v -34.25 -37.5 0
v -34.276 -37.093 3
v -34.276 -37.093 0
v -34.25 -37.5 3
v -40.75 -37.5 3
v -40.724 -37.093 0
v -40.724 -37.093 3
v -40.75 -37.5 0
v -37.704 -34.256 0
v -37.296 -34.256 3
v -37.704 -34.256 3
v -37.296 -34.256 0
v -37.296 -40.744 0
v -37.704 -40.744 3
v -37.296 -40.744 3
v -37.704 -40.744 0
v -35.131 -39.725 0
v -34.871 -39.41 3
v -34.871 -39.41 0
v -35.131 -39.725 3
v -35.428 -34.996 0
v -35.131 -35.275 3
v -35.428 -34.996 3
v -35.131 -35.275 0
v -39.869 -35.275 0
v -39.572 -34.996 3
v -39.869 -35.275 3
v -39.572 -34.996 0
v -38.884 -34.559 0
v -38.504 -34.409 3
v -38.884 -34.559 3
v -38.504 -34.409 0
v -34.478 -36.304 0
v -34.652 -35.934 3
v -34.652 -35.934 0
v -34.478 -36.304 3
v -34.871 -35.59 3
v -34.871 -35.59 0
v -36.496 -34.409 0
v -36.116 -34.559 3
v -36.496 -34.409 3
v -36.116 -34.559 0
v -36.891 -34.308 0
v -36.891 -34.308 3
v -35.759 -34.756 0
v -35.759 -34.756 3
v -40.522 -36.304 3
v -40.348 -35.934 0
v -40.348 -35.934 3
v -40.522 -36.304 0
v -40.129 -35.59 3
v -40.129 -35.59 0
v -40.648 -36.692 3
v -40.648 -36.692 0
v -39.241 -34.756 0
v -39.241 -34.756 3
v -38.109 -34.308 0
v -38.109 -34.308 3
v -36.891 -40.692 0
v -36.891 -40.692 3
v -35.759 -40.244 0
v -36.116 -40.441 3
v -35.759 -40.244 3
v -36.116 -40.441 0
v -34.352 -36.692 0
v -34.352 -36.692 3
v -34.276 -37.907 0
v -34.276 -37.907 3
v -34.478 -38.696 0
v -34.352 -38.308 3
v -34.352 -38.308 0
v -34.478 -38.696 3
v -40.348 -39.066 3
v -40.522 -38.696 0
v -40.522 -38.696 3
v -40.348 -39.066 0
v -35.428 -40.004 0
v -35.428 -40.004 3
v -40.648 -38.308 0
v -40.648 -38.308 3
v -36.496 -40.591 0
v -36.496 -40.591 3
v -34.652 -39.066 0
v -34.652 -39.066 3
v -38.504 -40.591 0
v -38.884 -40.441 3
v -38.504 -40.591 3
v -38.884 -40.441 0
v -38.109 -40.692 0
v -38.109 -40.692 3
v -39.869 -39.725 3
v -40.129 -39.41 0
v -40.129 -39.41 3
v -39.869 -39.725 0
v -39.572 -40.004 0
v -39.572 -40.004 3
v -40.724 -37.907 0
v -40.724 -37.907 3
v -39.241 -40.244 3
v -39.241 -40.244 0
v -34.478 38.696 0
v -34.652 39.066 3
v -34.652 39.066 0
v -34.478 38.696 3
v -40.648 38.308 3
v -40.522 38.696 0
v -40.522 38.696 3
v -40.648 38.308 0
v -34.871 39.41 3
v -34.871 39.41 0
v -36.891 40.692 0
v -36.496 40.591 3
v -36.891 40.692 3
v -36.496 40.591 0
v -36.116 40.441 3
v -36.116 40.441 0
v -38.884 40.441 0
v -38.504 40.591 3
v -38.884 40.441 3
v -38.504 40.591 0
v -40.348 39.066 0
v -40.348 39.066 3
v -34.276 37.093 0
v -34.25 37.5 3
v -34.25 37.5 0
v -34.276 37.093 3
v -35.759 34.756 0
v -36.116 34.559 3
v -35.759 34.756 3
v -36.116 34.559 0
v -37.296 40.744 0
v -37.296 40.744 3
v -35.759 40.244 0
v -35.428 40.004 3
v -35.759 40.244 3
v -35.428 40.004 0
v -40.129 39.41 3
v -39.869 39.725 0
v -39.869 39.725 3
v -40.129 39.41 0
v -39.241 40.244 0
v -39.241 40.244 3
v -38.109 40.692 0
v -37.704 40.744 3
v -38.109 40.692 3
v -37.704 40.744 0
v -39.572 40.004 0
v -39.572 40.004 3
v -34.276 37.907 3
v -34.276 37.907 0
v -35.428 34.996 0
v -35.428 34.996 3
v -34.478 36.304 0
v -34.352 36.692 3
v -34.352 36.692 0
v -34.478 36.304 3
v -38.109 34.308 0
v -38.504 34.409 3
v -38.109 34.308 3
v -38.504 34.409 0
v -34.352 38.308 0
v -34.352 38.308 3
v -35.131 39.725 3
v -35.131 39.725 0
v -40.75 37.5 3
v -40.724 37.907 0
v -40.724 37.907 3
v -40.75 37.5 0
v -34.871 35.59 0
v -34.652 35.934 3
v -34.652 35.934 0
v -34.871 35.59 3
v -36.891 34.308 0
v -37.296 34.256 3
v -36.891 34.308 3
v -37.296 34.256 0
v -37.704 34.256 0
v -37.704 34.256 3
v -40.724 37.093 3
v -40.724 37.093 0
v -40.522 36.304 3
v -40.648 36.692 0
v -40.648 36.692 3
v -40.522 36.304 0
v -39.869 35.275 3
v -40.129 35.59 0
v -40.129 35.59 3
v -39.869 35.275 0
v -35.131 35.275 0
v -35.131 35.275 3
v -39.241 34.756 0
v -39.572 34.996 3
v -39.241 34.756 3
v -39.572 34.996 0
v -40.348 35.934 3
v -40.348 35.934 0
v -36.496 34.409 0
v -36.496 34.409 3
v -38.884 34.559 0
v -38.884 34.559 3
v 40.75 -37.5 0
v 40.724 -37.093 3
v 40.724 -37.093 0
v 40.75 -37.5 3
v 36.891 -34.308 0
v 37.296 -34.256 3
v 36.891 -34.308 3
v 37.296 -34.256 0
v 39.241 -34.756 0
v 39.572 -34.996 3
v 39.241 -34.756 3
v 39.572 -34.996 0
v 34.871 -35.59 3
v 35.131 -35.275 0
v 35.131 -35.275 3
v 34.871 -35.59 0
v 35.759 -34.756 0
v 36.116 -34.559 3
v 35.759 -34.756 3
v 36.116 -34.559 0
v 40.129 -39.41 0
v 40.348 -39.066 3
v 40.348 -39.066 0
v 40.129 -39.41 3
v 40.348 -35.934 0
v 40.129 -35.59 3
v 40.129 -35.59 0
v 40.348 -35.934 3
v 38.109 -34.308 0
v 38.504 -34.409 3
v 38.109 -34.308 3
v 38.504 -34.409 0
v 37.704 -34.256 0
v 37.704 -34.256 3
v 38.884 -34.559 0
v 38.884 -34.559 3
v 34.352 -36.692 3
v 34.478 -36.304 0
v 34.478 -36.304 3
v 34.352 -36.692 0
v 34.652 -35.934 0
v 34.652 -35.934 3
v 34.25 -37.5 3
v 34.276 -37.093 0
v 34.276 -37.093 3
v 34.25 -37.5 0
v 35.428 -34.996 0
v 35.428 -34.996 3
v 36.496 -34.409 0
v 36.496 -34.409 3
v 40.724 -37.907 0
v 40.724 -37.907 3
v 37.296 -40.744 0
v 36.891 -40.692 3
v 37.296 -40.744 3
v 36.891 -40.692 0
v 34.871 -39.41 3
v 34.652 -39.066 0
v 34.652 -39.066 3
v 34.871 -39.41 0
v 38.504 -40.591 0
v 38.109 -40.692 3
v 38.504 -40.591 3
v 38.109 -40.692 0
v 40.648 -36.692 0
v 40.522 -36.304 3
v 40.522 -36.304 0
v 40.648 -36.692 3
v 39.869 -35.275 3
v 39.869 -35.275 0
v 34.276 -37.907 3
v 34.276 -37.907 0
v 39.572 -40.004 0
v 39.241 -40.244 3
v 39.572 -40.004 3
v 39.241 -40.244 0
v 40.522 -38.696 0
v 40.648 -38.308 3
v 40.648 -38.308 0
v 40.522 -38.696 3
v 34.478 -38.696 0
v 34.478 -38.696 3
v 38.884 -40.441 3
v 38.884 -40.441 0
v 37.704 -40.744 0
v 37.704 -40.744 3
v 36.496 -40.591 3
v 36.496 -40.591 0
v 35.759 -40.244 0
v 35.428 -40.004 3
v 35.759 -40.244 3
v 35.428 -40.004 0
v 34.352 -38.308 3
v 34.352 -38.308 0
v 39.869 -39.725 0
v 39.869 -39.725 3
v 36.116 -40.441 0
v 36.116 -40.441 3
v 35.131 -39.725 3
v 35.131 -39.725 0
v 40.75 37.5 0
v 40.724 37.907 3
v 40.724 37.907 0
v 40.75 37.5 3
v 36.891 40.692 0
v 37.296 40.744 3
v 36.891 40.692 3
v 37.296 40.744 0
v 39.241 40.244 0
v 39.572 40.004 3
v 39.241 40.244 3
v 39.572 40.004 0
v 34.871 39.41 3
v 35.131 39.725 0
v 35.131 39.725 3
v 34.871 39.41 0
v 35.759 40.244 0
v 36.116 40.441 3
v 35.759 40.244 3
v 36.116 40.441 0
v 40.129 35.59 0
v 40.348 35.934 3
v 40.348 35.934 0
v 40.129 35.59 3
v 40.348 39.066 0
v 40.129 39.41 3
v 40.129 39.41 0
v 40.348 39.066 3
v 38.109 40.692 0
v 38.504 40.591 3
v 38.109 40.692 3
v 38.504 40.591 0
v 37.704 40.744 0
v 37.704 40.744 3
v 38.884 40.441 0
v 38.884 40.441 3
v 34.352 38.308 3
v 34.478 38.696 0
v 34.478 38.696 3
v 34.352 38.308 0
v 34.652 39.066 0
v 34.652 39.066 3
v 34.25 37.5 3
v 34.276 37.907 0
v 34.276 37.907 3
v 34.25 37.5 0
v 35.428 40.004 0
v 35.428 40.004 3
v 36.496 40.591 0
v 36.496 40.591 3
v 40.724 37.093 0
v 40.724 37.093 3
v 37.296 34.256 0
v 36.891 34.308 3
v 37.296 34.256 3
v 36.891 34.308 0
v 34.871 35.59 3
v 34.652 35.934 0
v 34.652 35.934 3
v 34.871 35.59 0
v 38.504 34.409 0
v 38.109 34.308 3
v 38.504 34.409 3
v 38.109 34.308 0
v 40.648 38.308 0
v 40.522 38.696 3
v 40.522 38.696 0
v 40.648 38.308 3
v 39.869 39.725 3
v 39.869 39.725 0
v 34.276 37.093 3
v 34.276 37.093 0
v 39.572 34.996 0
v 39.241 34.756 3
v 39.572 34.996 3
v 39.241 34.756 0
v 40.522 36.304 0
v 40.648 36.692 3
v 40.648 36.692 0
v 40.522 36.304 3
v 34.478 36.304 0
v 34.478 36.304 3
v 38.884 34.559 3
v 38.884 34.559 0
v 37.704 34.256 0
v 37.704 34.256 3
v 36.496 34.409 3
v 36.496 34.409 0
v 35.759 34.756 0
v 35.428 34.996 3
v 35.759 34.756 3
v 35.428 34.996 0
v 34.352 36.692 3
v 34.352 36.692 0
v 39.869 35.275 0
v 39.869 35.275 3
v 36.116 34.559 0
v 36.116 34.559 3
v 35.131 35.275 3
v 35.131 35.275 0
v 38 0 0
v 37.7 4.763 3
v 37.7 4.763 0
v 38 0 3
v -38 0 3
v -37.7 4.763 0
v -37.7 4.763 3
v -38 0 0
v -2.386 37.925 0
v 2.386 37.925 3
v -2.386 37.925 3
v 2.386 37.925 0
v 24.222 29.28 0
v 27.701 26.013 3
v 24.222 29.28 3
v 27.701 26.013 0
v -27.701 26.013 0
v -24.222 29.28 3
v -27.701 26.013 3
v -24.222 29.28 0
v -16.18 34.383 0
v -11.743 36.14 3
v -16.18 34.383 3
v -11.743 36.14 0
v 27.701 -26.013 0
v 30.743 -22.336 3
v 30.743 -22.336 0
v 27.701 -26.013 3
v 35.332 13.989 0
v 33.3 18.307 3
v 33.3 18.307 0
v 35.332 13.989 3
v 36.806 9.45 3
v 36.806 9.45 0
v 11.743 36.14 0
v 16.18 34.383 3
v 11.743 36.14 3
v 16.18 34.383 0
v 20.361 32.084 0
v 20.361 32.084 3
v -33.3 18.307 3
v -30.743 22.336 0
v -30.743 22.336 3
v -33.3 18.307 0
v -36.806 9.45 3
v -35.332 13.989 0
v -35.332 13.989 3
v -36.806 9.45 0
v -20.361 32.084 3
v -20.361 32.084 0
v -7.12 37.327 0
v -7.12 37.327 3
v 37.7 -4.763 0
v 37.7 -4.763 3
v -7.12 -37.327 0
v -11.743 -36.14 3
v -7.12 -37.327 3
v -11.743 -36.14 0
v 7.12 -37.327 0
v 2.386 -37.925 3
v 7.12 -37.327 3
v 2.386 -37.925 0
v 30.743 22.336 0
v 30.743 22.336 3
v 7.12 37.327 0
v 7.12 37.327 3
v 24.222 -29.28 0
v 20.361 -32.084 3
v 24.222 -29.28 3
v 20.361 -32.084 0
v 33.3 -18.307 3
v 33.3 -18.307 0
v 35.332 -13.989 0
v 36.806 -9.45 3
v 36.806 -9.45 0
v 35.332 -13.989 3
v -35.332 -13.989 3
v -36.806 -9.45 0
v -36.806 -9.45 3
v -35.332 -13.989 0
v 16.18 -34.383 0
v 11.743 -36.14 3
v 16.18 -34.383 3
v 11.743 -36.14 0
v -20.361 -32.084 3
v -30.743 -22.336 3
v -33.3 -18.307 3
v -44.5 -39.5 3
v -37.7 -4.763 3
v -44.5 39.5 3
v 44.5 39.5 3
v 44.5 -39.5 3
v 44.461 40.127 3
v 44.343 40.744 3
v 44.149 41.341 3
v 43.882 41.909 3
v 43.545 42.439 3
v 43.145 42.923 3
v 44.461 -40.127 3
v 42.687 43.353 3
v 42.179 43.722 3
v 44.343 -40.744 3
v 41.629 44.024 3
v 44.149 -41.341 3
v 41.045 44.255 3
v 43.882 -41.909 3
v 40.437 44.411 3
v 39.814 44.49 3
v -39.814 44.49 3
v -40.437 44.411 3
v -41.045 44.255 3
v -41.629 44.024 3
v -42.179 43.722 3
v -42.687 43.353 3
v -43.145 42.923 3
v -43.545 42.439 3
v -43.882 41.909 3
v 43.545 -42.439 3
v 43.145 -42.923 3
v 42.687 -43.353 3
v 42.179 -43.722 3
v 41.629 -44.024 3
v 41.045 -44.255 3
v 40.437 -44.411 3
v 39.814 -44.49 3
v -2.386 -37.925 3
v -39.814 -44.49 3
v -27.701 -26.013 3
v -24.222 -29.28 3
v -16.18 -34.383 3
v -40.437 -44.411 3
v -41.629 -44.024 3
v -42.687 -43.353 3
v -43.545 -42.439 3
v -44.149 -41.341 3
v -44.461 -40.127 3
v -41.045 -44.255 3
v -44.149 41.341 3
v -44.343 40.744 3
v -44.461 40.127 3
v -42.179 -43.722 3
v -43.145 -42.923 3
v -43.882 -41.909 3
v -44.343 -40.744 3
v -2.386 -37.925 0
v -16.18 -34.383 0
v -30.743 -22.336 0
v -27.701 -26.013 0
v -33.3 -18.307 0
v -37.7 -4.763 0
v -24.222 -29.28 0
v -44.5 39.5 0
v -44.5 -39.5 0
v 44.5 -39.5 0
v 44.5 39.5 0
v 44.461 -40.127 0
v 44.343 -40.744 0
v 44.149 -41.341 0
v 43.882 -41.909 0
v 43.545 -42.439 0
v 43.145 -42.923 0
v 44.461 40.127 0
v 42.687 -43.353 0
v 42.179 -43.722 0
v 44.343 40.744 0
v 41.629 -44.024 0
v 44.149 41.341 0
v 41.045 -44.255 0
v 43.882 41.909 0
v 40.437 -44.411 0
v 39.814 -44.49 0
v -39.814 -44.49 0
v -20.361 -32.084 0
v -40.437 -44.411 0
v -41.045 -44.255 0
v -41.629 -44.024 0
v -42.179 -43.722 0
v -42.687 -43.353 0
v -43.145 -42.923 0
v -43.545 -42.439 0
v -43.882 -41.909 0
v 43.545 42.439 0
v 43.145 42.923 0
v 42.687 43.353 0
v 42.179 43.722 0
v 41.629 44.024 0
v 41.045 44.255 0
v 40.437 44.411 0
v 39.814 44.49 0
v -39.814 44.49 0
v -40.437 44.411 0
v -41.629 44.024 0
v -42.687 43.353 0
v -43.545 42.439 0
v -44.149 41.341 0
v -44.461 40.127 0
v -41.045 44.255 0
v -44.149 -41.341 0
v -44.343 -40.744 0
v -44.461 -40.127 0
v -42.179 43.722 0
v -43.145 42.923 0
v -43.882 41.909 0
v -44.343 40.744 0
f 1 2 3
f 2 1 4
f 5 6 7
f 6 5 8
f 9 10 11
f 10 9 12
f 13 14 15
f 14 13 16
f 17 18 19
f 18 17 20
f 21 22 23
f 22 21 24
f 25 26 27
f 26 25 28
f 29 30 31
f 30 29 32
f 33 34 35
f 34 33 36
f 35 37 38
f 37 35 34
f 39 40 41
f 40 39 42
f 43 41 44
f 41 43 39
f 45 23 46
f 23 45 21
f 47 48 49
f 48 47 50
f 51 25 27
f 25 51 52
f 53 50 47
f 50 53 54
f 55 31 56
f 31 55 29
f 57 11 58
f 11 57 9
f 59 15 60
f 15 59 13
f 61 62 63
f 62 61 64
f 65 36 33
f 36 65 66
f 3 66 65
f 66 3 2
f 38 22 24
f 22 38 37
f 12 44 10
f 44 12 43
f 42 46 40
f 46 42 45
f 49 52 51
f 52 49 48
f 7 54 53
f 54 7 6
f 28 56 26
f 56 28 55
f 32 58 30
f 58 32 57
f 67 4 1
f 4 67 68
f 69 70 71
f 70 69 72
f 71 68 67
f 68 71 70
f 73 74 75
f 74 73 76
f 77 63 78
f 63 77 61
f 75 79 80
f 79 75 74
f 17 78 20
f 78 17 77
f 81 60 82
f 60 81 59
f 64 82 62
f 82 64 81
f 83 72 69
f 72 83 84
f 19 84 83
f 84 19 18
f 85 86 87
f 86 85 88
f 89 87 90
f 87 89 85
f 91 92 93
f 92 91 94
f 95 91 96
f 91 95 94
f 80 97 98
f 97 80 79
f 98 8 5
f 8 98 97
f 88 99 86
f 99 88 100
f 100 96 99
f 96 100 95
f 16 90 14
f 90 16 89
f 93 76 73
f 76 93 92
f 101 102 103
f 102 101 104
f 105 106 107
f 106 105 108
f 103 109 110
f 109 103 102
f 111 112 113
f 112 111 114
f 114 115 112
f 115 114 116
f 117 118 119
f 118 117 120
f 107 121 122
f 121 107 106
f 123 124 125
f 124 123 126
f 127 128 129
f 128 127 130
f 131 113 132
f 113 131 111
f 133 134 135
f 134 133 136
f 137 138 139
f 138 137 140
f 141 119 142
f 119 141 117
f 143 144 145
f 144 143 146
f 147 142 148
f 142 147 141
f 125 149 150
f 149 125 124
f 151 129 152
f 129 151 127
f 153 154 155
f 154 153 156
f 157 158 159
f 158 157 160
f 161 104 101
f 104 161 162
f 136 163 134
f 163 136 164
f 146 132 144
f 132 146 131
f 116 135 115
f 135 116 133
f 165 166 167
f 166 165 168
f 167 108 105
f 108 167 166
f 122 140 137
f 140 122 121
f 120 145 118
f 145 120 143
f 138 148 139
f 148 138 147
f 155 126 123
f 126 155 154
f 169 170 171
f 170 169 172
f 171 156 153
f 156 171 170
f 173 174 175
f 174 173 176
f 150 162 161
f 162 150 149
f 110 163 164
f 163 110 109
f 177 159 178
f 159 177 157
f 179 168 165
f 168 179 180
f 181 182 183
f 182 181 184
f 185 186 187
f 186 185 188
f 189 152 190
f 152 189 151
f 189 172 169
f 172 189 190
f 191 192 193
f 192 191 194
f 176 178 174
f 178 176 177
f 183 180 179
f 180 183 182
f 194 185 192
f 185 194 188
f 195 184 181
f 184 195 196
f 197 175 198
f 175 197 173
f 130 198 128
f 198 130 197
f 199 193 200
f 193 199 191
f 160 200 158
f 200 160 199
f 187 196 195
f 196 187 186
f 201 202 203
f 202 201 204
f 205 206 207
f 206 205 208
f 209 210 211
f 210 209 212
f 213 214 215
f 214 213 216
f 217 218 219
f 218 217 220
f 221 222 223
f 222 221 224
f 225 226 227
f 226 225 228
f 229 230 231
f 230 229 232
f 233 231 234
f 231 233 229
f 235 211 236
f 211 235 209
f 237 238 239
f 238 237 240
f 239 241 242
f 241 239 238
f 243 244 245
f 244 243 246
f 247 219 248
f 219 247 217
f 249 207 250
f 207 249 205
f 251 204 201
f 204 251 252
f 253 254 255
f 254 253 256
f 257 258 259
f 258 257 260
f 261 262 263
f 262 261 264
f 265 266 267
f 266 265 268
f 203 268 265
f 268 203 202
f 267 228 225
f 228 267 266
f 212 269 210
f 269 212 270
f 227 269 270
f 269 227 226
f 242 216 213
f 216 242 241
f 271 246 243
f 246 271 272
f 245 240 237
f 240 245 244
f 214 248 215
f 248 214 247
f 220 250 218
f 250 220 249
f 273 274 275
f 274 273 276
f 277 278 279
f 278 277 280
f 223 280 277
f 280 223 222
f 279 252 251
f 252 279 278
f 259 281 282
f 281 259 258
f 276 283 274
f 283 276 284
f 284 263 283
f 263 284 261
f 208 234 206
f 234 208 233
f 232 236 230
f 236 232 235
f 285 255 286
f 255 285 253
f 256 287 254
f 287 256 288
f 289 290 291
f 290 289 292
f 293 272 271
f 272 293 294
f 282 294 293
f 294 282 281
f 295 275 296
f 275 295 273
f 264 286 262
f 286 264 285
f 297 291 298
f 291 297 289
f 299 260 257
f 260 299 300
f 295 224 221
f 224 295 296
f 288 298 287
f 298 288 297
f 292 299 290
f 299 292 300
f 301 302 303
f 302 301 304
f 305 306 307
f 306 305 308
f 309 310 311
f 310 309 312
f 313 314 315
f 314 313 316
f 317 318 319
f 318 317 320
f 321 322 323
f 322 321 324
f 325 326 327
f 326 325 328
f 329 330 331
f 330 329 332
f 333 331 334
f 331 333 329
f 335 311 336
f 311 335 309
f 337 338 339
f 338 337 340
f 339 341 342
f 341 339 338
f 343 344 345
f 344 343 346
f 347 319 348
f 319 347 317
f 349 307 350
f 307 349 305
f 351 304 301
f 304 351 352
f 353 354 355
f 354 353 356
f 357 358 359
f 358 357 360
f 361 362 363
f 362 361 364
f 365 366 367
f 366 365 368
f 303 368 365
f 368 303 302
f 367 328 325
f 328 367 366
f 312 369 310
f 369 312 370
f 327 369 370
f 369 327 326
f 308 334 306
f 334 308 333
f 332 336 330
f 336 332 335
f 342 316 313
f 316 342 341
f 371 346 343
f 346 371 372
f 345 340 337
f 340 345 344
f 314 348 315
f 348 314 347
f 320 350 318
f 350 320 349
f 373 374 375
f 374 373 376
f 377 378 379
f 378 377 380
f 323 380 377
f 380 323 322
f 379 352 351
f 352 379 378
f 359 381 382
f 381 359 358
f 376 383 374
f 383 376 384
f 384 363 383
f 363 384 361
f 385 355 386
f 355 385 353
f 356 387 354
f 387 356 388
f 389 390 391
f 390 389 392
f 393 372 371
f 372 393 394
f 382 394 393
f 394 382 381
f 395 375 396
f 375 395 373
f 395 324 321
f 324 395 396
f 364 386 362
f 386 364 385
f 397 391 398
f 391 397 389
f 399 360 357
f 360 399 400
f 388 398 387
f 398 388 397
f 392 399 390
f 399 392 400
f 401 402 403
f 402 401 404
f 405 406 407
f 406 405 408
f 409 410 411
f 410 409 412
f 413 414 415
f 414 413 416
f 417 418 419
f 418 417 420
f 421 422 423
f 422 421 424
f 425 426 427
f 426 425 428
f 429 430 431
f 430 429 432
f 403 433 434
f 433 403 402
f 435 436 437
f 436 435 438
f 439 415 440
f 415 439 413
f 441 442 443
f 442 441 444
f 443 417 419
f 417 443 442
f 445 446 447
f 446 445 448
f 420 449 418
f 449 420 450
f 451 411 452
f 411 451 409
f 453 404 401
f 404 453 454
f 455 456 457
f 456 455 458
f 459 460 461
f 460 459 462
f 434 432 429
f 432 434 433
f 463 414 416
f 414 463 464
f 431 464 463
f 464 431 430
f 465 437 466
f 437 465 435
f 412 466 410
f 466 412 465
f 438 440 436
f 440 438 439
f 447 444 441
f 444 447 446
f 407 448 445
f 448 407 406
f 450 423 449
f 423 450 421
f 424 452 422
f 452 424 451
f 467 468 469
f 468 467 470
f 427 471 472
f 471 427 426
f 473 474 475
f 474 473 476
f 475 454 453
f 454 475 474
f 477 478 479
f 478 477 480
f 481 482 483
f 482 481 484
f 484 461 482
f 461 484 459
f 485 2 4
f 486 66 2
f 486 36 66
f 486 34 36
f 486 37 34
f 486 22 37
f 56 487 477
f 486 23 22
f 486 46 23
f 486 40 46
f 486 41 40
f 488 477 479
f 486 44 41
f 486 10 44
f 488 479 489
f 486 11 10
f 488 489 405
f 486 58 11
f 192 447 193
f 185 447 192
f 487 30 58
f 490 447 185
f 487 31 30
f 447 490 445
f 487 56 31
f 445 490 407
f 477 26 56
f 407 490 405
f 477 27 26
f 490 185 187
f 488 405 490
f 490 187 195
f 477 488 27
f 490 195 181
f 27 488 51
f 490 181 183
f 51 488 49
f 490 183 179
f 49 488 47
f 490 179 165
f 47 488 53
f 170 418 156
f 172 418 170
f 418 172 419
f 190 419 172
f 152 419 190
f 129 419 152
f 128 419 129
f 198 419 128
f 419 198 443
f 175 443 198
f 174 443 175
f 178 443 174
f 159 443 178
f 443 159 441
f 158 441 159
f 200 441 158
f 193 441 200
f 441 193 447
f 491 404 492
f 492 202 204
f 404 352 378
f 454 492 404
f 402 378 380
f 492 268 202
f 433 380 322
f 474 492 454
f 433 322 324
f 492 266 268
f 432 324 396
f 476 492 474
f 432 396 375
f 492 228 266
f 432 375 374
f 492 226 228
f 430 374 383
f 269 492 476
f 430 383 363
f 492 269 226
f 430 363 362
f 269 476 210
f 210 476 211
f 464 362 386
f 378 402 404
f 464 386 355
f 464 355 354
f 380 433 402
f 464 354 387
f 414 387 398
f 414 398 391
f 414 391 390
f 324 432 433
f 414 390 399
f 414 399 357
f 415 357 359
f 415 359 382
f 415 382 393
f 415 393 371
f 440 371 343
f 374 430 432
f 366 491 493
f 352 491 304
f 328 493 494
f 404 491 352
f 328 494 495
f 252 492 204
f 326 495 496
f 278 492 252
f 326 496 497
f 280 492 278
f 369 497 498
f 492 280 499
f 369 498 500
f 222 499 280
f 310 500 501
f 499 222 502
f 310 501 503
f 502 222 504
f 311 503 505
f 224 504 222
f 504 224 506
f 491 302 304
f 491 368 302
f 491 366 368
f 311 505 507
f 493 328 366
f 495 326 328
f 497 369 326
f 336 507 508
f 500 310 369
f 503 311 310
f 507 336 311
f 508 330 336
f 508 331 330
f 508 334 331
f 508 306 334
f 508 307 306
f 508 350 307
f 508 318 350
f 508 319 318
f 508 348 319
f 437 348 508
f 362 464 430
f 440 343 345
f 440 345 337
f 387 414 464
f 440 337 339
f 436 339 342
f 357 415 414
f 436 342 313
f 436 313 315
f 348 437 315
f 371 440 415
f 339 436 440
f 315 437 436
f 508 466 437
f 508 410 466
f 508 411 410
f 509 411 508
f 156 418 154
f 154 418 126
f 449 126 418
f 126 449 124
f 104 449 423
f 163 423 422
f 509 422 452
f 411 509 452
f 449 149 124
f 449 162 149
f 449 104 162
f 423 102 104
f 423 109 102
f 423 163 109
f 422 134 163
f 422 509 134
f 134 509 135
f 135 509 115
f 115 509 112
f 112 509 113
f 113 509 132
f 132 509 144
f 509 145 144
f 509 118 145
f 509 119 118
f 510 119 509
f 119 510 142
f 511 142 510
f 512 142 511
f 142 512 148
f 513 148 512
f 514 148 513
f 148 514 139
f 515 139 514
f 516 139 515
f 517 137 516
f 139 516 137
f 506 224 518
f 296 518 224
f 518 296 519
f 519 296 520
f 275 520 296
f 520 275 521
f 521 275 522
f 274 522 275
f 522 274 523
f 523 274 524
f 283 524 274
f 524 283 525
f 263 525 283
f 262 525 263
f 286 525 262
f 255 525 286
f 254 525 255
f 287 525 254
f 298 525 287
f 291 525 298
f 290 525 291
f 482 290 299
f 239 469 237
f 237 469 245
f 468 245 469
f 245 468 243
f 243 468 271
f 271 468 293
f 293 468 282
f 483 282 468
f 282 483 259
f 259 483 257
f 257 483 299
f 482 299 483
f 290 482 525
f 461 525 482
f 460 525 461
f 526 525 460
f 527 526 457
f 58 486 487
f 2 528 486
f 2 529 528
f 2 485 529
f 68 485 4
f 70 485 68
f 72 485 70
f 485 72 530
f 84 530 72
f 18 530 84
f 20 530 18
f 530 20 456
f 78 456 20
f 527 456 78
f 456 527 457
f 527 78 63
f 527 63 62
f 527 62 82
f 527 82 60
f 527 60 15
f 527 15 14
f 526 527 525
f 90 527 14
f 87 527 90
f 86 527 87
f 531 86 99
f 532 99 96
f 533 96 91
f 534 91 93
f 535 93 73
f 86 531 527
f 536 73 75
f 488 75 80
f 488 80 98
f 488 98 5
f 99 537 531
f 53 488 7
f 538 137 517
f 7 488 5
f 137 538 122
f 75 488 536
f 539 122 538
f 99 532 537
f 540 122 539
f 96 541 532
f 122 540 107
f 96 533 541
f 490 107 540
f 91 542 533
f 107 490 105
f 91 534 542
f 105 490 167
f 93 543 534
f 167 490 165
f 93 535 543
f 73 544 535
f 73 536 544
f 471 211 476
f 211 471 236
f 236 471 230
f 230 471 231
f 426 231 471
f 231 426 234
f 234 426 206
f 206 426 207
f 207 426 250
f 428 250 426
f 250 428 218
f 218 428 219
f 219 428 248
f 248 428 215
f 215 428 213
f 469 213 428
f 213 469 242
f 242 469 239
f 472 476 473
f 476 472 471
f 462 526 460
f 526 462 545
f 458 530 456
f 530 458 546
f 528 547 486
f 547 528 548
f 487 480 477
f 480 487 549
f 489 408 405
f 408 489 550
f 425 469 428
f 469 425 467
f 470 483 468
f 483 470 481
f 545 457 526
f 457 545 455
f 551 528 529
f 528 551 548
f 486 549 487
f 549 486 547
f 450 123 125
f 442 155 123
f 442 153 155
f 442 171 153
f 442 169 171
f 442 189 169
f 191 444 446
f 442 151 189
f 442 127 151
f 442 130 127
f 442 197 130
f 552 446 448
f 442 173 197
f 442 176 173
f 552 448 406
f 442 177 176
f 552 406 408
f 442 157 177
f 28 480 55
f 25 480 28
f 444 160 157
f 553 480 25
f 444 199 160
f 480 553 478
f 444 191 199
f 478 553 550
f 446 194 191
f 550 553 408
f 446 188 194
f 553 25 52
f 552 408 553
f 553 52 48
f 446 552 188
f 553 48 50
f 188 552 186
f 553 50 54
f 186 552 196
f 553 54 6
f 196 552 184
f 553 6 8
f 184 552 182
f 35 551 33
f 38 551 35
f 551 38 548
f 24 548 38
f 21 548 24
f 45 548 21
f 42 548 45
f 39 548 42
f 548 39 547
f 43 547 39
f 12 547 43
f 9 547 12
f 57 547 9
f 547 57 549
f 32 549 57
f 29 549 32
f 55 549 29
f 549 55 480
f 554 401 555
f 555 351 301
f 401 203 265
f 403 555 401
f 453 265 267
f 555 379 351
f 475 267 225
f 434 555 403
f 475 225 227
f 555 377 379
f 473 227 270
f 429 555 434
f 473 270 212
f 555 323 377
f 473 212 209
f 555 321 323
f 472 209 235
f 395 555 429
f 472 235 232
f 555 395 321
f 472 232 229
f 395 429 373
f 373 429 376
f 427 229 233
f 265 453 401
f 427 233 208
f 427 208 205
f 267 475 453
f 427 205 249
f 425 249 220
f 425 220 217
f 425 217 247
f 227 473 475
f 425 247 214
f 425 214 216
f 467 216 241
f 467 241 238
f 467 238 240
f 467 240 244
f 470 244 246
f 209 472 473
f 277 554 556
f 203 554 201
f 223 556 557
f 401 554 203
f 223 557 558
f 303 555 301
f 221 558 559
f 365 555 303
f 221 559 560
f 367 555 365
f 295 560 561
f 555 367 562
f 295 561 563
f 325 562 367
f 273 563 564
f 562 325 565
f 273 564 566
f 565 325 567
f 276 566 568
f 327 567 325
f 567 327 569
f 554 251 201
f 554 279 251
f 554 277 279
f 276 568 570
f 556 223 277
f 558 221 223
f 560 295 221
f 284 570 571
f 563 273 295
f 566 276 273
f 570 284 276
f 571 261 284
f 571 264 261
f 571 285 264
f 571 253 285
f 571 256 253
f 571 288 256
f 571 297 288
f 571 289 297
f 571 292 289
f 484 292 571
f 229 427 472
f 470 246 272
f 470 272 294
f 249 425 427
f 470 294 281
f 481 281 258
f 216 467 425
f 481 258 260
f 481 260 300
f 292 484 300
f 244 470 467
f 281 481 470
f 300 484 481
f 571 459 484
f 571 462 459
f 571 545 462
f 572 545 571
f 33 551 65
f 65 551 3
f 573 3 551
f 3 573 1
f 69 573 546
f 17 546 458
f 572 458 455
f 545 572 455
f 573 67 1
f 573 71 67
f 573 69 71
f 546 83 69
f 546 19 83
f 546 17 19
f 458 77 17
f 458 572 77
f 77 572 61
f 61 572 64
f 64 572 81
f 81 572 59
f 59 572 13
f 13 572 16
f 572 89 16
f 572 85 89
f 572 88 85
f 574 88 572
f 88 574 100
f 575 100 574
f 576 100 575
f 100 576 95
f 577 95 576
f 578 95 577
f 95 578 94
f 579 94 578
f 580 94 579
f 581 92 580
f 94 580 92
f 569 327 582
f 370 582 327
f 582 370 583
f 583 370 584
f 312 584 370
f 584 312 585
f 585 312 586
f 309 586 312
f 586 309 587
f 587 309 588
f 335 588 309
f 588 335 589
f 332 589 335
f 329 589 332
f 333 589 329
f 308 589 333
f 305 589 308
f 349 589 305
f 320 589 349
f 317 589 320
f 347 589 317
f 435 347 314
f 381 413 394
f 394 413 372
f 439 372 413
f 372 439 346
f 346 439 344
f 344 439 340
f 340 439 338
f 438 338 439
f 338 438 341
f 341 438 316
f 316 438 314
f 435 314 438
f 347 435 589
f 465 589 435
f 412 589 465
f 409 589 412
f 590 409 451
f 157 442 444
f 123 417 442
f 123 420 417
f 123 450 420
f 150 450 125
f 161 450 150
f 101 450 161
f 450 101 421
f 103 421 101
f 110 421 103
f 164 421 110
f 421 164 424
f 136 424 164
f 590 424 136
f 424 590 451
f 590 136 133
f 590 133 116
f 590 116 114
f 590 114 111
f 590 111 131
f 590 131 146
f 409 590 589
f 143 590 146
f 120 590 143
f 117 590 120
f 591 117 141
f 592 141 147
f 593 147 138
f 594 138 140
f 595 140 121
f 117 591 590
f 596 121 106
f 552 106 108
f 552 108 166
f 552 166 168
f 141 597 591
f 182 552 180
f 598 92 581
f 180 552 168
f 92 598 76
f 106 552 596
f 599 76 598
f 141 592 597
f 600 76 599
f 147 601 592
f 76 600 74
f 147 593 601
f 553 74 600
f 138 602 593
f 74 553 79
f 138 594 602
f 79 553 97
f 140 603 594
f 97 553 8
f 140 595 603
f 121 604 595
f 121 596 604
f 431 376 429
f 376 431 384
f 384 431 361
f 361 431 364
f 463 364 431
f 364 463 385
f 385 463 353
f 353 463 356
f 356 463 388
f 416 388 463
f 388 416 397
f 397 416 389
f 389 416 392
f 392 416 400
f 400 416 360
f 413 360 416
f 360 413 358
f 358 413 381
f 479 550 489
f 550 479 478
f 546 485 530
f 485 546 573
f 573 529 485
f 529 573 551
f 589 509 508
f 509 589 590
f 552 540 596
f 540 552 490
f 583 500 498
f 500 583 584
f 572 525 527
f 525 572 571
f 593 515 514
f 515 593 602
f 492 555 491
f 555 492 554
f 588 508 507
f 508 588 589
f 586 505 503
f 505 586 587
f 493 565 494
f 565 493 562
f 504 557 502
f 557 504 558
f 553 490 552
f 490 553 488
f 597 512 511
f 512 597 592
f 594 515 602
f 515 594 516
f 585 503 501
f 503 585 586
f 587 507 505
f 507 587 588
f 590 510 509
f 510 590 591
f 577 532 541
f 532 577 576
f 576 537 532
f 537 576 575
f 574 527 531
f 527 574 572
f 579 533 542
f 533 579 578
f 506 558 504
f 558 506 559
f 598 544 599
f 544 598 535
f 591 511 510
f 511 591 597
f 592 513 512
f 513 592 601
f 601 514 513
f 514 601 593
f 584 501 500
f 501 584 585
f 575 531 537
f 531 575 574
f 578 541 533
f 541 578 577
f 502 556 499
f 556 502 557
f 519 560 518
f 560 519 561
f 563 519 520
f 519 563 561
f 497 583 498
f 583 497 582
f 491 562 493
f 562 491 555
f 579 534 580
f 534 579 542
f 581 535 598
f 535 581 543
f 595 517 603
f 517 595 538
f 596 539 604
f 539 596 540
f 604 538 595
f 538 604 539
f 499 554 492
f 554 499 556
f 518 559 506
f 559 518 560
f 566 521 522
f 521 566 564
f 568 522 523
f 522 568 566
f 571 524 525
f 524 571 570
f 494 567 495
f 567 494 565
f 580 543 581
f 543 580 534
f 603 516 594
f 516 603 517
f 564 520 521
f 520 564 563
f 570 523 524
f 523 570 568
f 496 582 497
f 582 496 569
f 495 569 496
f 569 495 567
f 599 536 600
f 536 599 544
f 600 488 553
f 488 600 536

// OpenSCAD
$fn = 50;


difference() {
	union() {
		hull() {
			translate(v = [-39.5000000000, 39.5000000000, 0]) {
				cylinder(h = 3, r = 5);
			}
			translate(v = [39.5000000000, 39.5000000000, 0]) {
				cylinder(h = 3, r = 5);
			}
			translate(v = [-39.5000000000, -39.5000000000, 0]) {
				cylinder(h = 3, r = 5);
			}
			translate(v = [39.5000000000, -39.5000000000, 0]) {
				cylinder(h = 3, r = 5);
			}
		}
	}
	union() {
		#translate(v = [-37.5000000000, -37.5000000000, -100.0000000000]) {
			cylinder(h = 200, r = 3.2500000000);
		}
		#translate(v = [-37.5000000000, 37.5000000000, -100.0000000000]) {
			cylinder(h = 200, r = 3.2500000000);
		}
		#translate(v = [37.5000000000, -37.5000000000, -100.0000000000]) {
			cylinder(h = 200, r = 3.2500000000);
		}
		#translate(v = [37.5000000000, 37.5000000000, -100.0000000000]) {
			cylinder(h = 200, r = 3.2500000000);
		}
		#cylinder(h = 3, r = 38.0000000000);
	}
}
